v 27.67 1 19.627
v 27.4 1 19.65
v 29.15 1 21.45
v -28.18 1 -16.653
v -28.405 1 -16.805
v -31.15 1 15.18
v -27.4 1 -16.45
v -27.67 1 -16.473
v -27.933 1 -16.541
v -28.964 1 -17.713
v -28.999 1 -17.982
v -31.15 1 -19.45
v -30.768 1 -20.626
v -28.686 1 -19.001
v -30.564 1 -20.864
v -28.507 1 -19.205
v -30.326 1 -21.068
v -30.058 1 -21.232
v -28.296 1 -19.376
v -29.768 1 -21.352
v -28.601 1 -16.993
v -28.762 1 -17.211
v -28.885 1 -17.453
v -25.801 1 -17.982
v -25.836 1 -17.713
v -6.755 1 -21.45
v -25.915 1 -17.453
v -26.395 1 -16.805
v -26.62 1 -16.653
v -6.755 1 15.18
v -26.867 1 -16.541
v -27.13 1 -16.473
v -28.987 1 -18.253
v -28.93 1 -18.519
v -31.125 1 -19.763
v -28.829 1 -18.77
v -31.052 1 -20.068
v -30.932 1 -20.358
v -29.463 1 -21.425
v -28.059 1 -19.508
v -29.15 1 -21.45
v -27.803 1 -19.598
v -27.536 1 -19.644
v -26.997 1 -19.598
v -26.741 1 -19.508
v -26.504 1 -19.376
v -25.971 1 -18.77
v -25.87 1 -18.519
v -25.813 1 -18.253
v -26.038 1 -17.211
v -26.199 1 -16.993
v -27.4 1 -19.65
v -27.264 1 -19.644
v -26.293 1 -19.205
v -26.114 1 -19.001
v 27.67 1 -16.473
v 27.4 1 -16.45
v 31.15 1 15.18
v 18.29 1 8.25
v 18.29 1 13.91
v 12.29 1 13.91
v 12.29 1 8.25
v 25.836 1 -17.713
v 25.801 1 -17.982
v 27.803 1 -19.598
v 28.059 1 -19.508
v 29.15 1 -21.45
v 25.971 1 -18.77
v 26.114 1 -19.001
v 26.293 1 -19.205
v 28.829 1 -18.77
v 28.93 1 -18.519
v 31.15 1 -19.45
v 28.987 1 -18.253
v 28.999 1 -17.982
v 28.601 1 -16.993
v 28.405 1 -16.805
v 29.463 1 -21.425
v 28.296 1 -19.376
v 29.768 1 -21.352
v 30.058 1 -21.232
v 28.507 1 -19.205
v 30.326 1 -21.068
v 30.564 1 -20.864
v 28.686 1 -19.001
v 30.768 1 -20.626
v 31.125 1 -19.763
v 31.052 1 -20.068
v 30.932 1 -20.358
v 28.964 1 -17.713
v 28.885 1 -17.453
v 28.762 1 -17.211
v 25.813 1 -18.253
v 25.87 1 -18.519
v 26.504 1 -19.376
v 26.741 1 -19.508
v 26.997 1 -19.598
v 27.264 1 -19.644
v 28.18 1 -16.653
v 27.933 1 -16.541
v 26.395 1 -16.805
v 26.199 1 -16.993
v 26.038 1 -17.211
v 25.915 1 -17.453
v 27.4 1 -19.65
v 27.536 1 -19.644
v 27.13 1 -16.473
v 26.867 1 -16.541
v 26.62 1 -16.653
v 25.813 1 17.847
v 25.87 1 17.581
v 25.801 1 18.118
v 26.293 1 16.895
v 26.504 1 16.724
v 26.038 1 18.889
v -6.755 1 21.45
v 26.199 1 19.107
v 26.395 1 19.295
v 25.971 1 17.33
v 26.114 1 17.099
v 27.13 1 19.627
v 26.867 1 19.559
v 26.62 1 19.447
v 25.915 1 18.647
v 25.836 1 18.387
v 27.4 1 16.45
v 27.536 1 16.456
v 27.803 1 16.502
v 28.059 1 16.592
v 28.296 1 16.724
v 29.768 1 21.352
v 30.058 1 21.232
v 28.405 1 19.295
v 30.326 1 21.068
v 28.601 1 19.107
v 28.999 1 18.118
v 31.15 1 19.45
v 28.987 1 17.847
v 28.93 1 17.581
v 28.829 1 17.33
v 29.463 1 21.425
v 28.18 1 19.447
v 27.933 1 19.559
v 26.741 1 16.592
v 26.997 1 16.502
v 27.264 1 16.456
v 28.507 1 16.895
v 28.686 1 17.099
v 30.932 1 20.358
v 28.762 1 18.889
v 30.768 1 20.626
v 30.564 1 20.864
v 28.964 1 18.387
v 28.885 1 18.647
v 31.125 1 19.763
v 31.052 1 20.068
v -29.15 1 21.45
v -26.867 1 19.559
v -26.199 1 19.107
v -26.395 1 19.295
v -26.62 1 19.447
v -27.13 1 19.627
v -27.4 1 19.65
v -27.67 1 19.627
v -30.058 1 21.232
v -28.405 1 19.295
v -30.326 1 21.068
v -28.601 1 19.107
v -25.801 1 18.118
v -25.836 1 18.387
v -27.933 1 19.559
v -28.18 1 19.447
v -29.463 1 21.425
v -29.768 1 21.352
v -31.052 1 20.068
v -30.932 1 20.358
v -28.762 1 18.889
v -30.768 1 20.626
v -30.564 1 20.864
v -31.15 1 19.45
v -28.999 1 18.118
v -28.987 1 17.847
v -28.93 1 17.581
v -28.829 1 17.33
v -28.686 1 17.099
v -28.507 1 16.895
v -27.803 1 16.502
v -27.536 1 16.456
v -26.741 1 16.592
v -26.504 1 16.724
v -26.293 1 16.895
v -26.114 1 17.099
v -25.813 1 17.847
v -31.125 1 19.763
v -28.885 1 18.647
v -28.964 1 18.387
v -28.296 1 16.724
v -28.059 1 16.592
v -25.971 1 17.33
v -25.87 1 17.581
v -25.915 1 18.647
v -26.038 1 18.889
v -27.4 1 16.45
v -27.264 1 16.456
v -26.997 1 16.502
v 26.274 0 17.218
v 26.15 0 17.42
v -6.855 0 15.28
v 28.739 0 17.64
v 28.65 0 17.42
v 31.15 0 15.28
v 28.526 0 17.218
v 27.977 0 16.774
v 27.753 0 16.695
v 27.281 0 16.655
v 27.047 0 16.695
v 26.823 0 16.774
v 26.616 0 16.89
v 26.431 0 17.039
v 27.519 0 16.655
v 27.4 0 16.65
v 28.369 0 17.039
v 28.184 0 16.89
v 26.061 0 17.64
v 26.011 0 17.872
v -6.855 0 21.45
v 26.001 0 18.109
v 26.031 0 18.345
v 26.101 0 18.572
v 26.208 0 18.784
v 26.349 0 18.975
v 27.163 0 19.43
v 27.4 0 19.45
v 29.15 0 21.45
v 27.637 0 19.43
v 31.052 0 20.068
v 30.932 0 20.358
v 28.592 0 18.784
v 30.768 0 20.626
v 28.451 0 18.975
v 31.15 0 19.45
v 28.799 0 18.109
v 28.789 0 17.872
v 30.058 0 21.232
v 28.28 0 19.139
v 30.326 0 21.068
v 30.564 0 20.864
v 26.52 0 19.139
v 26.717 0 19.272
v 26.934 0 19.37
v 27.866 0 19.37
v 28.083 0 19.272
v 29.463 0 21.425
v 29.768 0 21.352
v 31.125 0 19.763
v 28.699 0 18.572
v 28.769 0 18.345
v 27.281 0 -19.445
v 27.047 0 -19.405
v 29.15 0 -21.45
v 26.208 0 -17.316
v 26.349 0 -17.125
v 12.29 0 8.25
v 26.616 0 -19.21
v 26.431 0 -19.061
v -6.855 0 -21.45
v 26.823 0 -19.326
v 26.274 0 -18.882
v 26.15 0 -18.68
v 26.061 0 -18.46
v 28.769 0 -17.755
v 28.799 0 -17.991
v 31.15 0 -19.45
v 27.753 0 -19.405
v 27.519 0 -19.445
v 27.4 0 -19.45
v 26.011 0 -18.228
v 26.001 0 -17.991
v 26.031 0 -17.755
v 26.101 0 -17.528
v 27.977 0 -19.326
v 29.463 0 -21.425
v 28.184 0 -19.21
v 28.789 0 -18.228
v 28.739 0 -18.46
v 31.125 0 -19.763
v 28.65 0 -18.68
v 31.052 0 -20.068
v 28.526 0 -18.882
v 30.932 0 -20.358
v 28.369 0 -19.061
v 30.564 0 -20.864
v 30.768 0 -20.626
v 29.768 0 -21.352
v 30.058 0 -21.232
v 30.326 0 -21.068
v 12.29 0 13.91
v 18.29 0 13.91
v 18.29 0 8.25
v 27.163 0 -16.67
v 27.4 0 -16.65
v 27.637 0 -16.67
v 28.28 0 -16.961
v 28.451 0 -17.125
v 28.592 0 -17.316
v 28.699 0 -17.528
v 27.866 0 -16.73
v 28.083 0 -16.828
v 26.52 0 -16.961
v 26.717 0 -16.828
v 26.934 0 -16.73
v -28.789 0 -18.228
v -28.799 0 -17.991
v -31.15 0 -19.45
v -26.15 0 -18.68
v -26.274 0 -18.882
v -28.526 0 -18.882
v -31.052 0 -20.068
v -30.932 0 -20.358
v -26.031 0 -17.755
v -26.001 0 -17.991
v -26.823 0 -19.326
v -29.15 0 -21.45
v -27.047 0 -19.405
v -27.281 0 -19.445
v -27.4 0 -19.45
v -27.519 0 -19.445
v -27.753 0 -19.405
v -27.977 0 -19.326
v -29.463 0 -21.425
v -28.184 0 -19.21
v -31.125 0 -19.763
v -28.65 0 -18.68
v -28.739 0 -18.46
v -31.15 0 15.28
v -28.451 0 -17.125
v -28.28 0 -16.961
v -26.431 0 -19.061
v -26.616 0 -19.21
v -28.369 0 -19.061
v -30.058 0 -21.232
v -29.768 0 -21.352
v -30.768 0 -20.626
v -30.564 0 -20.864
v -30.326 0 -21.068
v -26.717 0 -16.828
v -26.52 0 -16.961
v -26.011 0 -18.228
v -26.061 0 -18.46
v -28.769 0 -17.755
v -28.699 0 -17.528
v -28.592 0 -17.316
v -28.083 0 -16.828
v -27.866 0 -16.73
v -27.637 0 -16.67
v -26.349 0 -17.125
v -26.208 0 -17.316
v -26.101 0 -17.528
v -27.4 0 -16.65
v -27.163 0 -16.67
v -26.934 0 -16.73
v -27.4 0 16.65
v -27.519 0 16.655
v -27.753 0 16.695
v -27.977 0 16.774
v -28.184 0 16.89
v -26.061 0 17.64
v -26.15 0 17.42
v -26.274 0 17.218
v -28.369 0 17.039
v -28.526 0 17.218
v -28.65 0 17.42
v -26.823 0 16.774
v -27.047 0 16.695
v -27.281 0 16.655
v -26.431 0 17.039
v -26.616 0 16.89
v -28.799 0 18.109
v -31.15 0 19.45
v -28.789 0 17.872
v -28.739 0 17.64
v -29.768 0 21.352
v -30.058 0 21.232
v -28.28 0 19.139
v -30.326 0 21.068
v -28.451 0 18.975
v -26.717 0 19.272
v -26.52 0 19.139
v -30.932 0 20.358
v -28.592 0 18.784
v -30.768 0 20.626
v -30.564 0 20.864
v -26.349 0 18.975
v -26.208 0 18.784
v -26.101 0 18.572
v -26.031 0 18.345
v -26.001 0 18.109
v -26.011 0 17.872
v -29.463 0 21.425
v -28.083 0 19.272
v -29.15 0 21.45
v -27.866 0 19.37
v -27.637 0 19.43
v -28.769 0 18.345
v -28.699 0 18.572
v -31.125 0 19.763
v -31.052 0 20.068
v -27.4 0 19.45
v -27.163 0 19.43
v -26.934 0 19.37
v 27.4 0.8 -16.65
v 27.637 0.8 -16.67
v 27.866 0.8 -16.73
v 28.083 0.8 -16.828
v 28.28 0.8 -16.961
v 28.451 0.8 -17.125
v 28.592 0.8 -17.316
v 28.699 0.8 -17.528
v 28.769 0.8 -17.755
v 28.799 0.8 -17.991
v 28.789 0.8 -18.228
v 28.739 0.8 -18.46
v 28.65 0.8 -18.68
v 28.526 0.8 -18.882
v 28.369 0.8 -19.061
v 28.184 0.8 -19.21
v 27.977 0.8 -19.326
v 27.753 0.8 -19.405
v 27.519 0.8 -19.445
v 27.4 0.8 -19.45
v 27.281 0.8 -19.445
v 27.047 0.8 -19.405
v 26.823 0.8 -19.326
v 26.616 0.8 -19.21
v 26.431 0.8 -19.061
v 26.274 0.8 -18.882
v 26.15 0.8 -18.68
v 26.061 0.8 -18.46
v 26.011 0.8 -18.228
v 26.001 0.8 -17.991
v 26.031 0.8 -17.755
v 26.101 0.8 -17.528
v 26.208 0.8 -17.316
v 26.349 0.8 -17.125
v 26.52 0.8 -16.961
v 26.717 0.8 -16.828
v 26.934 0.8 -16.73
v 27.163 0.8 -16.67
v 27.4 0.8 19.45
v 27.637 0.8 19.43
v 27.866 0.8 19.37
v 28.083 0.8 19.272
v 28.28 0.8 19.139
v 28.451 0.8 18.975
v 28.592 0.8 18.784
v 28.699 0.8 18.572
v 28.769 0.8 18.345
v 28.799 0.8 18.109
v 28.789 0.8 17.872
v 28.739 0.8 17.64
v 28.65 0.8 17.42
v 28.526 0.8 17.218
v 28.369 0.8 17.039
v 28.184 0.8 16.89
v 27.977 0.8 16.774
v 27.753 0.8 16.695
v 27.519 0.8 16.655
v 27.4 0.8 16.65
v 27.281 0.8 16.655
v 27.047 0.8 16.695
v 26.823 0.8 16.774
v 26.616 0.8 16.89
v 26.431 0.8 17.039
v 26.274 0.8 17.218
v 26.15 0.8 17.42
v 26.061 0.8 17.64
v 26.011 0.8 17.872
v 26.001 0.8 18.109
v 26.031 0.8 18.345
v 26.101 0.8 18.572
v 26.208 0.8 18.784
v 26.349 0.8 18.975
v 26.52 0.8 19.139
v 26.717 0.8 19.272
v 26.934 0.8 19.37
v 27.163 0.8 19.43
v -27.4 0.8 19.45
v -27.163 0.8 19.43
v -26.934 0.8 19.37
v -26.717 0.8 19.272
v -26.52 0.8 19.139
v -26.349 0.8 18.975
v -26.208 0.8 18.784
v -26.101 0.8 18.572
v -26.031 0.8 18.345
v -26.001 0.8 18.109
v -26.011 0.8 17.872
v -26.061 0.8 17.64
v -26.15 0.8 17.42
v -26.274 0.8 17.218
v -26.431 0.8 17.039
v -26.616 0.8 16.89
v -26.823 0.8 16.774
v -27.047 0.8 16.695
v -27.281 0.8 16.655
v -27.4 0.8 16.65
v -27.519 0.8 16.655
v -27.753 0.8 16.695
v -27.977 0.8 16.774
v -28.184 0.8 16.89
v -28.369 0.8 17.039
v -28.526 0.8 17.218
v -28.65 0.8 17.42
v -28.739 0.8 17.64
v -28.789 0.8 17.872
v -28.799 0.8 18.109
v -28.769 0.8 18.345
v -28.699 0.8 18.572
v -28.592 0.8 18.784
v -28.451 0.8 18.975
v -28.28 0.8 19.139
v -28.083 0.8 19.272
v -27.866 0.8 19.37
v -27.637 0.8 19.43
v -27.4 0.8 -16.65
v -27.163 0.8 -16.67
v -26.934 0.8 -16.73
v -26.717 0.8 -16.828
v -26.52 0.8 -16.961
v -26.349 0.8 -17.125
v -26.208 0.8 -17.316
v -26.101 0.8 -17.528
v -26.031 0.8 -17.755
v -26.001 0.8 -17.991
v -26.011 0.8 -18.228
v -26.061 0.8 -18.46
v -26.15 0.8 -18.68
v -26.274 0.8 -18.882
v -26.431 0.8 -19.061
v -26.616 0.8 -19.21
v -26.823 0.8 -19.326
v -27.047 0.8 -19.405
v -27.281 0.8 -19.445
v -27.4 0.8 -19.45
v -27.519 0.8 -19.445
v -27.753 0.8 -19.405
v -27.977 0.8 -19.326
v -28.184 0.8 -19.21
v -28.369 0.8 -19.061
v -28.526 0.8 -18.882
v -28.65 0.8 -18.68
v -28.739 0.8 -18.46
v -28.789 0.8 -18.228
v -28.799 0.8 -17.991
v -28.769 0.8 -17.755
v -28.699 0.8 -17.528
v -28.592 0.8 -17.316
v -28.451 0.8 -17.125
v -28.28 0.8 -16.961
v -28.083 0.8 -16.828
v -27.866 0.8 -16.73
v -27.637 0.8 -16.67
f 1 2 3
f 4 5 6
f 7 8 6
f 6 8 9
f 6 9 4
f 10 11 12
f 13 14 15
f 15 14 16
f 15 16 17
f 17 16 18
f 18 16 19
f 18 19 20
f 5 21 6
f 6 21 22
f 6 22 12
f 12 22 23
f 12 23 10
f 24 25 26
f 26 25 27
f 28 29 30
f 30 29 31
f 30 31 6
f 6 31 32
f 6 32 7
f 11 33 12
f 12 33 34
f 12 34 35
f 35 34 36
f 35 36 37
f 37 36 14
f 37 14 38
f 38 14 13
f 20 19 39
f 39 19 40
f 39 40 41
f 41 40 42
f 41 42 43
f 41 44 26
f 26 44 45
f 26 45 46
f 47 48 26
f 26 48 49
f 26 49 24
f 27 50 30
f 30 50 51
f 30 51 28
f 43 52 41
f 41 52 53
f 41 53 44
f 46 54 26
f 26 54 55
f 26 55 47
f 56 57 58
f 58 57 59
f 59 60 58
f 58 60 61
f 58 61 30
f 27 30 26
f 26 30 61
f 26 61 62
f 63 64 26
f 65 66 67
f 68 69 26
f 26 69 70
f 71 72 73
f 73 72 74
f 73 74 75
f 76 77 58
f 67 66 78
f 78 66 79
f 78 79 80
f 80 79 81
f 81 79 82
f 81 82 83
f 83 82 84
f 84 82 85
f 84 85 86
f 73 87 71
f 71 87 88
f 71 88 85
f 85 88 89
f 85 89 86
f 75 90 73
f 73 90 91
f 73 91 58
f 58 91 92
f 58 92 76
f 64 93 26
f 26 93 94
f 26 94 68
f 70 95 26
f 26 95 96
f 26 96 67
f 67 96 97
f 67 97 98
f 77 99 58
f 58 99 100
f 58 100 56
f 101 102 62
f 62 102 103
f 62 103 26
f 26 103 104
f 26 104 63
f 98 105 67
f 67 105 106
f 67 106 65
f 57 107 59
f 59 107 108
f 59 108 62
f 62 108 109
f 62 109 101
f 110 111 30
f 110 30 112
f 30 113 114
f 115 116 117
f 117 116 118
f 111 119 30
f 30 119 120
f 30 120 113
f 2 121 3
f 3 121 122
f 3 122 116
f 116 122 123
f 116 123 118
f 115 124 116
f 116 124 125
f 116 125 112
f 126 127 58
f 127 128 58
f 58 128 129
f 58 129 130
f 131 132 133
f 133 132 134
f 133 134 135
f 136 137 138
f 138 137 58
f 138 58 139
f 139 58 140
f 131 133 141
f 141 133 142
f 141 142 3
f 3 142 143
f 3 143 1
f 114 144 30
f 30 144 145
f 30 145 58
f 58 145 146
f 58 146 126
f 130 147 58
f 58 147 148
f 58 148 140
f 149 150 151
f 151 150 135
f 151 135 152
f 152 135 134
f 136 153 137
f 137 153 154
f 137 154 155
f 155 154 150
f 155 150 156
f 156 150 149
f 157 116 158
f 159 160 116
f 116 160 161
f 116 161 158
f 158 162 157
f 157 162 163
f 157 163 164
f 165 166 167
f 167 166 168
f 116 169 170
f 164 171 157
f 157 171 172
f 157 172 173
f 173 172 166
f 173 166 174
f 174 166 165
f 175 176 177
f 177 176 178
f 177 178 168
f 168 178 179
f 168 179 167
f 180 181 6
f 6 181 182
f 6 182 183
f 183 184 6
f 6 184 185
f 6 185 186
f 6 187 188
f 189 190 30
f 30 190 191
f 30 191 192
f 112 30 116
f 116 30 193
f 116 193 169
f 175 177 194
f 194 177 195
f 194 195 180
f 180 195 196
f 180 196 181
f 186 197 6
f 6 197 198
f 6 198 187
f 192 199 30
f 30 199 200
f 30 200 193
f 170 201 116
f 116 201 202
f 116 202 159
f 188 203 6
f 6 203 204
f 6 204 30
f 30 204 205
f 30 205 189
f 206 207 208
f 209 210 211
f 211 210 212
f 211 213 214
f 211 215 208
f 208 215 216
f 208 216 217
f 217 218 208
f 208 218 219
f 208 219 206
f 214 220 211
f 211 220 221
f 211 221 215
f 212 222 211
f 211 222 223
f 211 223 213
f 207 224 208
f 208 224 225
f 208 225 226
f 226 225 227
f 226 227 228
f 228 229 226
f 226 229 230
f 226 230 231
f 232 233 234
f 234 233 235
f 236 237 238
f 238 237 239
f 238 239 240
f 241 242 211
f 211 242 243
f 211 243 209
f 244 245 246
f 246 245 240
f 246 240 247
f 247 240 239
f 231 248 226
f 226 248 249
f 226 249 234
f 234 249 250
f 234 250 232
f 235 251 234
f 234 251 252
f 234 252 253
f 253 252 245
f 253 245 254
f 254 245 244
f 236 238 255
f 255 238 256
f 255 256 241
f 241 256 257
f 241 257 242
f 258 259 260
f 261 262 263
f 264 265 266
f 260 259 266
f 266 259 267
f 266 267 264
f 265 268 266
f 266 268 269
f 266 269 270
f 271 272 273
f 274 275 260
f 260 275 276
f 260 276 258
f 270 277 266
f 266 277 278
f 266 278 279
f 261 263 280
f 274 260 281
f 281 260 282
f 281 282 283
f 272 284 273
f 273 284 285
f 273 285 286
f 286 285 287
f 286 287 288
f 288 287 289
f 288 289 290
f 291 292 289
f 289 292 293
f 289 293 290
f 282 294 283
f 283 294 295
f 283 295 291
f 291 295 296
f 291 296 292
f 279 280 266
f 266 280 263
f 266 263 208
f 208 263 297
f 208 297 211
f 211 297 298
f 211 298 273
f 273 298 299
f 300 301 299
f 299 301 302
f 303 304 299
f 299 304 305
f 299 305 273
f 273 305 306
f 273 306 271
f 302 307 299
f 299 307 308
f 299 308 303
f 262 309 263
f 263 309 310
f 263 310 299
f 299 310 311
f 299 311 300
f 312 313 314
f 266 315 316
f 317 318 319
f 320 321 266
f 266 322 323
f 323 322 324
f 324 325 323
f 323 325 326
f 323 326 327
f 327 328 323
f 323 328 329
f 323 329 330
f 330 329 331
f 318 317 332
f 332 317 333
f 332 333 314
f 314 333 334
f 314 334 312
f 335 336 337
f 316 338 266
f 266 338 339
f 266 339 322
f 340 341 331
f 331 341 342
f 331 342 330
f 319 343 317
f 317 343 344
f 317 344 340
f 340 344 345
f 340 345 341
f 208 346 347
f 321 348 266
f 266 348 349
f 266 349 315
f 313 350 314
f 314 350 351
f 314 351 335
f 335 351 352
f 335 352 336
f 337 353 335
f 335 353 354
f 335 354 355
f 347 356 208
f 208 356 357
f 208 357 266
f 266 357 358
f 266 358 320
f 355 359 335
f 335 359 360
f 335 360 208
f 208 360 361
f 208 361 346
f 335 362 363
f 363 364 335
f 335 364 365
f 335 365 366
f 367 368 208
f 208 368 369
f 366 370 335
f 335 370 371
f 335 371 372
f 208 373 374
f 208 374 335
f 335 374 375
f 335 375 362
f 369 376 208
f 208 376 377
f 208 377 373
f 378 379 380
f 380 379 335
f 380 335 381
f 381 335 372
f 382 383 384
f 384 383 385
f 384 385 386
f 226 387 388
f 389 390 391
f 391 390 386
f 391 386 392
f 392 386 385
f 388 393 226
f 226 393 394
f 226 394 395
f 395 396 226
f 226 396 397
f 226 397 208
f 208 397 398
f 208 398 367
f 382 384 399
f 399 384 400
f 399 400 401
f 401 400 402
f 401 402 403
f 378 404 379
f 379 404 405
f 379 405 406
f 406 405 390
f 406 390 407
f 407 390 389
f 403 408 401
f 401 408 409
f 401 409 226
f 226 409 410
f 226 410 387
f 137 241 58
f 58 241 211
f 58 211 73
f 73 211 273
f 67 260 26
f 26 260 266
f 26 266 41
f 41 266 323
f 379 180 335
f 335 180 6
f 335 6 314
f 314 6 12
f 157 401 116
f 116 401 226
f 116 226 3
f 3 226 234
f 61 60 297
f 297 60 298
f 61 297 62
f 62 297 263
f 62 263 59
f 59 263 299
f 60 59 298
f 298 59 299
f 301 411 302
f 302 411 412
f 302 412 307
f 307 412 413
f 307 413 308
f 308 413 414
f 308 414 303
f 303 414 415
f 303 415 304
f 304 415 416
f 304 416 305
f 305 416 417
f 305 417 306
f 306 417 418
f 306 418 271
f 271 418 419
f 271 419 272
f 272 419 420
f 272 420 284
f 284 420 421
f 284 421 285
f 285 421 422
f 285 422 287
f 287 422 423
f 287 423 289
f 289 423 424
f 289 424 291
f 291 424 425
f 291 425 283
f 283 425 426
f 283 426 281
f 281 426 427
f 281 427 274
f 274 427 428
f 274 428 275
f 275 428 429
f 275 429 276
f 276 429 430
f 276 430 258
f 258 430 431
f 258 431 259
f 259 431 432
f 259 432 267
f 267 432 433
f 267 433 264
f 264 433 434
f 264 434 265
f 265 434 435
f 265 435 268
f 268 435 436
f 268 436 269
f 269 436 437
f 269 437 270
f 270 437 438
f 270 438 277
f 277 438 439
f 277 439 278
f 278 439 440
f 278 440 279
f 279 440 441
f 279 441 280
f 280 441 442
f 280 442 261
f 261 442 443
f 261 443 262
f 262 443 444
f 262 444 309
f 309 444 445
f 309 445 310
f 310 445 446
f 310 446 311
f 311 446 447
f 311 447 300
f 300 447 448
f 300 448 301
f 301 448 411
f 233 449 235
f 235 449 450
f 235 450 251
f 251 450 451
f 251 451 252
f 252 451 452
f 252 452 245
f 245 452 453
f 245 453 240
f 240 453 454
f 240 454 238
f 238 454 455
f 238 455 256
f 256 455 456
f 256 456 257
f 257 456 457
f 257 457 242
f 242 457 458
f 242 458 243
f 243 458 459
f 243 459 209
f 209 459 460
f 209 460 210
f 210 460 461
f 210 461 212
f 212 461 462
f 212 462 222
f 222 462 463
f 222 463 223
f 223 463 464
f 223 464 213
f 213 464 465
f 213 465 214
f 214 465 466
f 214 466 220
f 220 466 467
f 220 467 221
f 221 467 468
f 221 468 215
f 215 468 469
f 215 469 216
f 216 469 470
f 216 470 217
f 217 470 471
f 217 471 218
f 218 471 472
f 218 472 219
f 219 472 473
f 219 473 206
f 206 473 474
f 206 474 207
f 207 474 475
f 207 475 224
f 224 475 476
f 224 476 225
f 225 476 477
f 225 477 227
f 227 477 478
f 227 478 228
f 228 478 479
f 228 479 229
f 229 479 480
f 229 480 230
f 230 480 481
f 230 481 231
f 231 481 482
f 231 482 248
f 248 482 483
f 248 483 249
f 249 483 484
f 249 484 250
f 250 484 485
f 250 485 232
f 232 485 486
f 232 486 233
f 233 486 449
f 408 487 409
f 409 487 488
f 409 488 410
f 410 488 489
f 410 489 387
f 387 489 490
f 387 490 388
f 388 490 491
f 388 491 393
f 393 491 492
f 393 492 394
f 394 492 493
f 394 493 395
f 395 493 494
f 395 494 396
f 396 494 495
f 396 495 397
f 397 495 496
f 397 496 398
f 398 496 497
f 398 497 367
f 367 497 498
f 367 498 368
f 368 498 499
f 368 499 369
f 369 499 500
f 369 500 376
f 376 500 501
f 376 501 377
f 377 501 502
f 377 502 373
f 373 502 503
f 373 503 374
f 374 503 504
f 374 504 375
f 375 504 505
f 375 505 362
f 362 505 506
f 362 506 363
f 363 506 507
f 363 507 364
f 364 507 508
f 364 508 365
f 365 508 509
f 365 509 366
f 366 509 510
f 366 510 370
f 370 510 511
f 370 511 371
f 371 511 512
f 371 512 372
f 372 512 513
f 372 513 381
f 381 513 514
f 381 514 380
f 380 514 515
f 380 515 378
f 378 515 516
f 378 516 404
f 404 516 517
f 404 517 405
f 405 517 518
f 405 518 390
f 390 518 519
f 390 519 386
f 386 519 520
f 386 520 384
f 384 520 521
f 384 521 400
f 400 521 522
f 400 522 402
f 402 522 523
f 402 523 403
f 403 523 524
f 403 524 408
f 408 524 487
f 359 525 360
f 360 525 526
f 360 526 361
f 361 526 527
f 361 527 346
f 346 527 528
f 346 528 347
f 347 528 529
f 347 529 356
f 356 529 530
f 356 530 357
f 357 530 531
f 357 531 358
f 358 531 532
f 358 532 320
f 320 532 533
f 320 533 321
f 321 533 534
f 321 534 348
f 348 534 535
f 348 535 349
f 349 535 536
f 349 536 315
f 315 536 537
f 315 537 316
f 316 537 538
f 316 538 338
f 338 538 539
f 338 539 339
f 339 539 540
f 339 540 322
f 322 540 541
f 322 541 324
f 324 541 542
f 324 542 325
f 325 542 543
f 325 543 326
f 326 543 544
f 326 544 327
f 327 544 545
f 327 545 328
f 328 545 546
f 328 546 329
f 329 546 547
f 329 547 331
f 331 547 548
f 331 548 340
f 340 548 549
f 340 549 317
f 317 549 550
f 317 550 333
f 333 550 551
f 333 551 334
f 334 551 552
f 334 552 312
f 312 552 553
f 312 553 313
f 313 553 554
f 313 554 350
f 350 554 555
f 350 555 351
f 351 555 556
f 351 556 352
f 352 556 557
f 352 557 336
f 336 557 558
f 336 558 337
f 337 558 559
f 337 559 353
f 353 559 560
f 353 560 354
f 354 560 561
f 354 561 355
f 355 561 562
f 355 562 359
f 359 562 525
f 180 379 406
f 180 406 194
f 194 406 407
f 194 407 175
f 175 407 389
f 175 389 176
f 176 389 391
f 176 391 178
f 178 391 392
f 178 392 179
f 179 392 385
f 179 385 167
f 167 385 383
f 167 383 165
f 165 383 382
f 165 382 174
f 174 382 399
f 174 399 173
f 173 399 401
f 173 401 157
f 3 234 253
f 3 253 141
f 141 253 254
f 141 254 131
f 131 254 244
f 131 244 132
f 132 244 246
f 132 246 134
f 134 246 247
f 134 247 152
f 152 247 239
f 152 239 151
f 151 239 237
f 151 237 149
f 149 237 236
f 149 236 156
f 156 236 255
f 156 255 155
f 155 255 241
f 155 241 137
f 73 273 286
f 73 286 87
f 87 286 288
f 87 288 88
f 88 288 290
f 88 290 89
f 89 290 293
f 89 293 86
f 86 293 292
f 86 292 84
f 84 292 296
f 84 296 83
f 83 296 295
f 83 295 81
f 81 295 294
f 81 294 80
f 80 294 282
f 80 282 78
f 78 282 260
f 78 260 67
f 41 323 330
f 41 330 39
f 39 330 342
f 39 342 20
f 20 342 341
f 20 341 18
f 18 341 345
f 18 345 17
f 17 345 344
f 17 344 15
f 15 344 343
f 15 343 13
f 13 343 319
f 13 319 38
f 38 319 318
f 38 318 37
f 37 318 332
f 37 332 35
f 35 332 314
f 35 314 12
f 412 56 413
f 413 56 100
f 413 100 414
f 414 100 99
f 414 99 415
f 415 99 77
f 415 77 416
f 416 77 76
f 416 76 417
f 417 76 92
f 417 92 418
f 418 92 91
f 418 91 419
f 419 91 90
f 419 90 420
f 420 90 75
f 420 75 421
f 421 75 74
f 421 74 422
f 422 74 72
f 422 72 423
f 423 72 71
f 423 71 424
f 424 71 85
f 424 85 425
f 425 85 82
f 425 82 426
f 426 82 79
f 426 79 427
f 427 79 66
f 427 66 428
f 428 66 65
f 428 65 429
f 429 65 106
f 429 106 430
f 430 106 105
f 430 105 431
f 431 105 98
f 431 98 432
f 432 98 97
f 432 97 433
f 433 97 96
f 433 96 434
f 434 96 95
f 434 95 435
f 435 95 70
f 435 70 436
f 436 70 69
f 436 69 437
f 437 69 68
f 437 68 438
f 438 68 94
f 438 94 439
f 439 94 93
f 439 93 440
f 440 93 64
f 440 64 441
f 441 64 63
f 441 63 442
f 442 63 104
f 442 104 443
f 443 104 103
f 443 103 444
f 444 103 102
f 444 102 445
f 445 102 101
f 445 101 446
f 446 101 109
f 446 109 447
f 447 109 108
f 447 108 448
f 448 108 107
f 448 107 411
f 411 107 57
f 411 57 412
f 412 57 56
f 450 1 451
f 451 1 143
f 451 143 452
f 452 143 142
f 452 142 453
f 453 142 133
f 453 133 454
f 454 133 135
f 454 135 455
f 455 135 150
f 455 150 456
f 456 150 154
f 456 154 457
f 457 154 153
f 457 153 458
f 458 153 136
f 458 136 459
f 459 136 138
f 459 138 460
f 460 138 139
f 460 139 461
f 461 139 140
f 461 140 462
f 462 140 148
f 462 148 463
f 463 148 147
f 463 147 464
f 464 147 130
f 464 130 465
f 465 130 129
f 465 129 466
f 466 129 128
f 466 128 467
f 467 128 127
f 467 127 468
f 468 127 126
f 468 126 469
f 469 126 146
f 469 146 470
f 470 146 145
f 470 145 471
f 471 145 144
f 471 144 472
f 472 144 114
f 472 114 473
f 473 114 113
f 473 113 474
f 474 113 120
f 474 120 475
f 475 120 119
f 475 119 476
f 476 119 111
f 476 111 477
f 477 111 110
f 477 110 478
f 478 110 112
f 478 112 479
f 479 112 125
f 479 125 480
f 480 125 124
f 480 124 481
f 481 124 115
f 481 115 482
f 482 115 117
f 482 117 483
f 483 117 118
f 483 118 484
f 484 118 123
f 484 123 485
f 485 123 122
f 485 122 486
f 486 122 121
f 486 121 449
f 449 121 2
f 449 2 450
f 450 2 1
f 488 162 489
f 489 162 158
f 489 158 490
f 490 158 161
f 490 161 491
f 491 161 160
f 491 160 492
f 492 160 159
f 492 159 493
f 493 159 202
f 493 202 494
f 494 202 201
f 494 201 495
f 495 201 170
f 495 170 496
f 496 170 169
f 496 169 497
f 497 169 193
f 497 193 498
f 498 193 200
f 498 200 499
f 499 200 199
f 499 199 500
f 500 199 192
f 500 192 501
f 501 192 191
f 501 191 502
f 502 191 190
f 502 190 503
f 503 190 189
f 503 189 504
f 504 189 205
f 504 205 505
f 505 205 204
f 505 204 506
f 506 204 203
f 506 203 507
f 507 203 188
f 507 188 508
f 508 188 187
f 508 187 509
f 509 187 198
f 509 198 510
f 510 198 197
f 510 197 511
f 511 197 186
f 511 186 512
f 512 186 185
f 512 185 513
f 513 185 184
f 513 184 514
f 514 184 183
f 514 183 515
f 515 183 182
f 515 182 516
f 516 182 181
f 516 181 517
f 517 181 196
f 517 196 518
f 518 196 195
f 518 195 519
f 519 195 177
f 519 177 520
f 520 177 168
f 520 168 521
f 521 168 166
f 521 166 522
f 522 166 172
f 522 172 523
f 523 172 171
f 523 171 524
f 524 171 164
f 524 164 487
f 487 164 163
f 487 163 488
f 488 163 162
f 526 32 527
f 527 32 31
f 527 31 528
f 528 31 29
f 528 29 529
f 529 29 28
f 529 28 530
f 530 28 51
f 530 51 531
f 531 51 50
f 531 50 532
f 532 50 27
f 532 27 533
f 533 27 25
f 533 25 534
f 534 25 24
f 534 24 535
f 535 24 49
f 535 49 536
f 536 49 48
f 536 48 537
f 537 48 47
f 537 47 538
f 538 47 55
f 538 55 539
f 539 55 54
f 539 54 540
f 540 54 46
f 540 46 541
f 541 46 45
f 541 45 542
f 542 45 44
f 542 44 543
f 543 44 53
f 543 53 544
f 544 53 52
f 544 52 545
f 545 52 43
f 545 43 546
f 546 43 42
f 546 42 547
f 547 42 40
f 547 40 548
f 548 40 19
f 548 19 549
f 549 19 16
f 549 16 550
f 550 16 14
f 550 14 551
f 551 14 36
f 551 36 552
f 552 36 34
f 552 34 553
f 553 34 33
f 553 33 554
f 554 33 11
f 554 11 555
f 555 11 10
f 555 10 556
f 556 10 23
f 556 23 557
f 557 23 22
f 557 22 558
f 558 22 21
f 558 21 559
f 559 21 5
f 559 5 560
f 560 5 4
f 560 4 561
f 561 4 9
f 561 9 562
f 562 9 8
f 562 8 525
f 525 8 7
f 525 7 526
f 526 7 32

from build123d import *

# Parameters (mm, degrees)
SZKIC1_W                    = 62.3
SZKIC1_H                    = 42.9
DODANIE_WYCI_GNI_CIE1_DEPTH = 1
SZKIC5_W                    = 6
SZKIC5_H                    = 5.66
WYTNIJ_WYCI_GNI_CIE2_DEPTH  = 7
SZKIC6_R                    = 1.4
WYTNIJ_WYCI_GNI_CIE3_DEPTH  = 10
ZAOKR_GLENIE1_R             = 2
SFAZOWANIE1_SIZE            = 0.2


with BuildPart() as part:
    # Szkic1 → Dodanie-wyciągnięcie1 (new body)
    with BuildSketch(Plane(origin=(0, 0, 0), x_dir=(1, 0, 0), z_dir=(0, 1, 0))):
        Rectangle(SZKIC1_W, SZKIC1_H)
    extrude(amount=DODANIE_WYCI_GNI_CIE1_DEPTH)

    # Szkic5 → Wytnij-wyciągnięcie2 (cut)
    with BuildSketch(Plane(origin=(0, 1, 0), x_dir=(1, 0, 0), z_dir=(0, 1, 0))):
        with Locations((15.29, -11.08)):
            Rectangle(SZKIC5_W, SZKIC5_H)
    extrude(amount=-WYTNIJ_WYCI_GNI_CIE2_DEPTH, mode=Mode.SUBTRACT)

    # Szkic6 → Wytnij-wyciągnięcie3 (cut)
    with BuildSketch(Plane(origin=(0, 1, 0), x_dir=(1, 0, 0), z_dir=(0, 1, 0))):
        with Locations((27.4, 18.05)):
            Circle(SZKIC6_R)
        with Locations((27.4, -18.05)):
            Circle(SZKIC6_R)
        with Locations((-27.4, -18.05)):
            Circle(SZKIC6_R)
        with Locations((-27.4, 18.05)):
            Circle(SZKIC6_R)
    extrude(amount=-WYTNIJ_WYCI_GNI_CIE3_DEPTH, mode=Mode.SUBTRACT)

    # Zaokrąglenie1
    zaokr_glenie1_edges = [part.edges().sort_by_distance(p)[0] for p in [
        (31.15, 0.5, 21.45),
        (-31.15, 0.5, 21.45),
        (-31.15, 0.5, -21.45),
        (31.15, 0.5, -21.45),
    ]]
    fillet(zaokr_glenie1_edges, radius=ZAOKR_GLENIE1_R)

    # Sfazowanie1
    sfazowanie1_edges = [part.edges().sort_by_distance(p)[0] for p in [
        (-28.8, 1, -18.05),
        (-28.8, 1, 18.05),
        (26, 1, 18.05),
        (26, 1, -18.05),
    ]]
    chamfer(sfazowanie1_edges, length=SFAZOWANIE1_SIZE)


solid = part.part
